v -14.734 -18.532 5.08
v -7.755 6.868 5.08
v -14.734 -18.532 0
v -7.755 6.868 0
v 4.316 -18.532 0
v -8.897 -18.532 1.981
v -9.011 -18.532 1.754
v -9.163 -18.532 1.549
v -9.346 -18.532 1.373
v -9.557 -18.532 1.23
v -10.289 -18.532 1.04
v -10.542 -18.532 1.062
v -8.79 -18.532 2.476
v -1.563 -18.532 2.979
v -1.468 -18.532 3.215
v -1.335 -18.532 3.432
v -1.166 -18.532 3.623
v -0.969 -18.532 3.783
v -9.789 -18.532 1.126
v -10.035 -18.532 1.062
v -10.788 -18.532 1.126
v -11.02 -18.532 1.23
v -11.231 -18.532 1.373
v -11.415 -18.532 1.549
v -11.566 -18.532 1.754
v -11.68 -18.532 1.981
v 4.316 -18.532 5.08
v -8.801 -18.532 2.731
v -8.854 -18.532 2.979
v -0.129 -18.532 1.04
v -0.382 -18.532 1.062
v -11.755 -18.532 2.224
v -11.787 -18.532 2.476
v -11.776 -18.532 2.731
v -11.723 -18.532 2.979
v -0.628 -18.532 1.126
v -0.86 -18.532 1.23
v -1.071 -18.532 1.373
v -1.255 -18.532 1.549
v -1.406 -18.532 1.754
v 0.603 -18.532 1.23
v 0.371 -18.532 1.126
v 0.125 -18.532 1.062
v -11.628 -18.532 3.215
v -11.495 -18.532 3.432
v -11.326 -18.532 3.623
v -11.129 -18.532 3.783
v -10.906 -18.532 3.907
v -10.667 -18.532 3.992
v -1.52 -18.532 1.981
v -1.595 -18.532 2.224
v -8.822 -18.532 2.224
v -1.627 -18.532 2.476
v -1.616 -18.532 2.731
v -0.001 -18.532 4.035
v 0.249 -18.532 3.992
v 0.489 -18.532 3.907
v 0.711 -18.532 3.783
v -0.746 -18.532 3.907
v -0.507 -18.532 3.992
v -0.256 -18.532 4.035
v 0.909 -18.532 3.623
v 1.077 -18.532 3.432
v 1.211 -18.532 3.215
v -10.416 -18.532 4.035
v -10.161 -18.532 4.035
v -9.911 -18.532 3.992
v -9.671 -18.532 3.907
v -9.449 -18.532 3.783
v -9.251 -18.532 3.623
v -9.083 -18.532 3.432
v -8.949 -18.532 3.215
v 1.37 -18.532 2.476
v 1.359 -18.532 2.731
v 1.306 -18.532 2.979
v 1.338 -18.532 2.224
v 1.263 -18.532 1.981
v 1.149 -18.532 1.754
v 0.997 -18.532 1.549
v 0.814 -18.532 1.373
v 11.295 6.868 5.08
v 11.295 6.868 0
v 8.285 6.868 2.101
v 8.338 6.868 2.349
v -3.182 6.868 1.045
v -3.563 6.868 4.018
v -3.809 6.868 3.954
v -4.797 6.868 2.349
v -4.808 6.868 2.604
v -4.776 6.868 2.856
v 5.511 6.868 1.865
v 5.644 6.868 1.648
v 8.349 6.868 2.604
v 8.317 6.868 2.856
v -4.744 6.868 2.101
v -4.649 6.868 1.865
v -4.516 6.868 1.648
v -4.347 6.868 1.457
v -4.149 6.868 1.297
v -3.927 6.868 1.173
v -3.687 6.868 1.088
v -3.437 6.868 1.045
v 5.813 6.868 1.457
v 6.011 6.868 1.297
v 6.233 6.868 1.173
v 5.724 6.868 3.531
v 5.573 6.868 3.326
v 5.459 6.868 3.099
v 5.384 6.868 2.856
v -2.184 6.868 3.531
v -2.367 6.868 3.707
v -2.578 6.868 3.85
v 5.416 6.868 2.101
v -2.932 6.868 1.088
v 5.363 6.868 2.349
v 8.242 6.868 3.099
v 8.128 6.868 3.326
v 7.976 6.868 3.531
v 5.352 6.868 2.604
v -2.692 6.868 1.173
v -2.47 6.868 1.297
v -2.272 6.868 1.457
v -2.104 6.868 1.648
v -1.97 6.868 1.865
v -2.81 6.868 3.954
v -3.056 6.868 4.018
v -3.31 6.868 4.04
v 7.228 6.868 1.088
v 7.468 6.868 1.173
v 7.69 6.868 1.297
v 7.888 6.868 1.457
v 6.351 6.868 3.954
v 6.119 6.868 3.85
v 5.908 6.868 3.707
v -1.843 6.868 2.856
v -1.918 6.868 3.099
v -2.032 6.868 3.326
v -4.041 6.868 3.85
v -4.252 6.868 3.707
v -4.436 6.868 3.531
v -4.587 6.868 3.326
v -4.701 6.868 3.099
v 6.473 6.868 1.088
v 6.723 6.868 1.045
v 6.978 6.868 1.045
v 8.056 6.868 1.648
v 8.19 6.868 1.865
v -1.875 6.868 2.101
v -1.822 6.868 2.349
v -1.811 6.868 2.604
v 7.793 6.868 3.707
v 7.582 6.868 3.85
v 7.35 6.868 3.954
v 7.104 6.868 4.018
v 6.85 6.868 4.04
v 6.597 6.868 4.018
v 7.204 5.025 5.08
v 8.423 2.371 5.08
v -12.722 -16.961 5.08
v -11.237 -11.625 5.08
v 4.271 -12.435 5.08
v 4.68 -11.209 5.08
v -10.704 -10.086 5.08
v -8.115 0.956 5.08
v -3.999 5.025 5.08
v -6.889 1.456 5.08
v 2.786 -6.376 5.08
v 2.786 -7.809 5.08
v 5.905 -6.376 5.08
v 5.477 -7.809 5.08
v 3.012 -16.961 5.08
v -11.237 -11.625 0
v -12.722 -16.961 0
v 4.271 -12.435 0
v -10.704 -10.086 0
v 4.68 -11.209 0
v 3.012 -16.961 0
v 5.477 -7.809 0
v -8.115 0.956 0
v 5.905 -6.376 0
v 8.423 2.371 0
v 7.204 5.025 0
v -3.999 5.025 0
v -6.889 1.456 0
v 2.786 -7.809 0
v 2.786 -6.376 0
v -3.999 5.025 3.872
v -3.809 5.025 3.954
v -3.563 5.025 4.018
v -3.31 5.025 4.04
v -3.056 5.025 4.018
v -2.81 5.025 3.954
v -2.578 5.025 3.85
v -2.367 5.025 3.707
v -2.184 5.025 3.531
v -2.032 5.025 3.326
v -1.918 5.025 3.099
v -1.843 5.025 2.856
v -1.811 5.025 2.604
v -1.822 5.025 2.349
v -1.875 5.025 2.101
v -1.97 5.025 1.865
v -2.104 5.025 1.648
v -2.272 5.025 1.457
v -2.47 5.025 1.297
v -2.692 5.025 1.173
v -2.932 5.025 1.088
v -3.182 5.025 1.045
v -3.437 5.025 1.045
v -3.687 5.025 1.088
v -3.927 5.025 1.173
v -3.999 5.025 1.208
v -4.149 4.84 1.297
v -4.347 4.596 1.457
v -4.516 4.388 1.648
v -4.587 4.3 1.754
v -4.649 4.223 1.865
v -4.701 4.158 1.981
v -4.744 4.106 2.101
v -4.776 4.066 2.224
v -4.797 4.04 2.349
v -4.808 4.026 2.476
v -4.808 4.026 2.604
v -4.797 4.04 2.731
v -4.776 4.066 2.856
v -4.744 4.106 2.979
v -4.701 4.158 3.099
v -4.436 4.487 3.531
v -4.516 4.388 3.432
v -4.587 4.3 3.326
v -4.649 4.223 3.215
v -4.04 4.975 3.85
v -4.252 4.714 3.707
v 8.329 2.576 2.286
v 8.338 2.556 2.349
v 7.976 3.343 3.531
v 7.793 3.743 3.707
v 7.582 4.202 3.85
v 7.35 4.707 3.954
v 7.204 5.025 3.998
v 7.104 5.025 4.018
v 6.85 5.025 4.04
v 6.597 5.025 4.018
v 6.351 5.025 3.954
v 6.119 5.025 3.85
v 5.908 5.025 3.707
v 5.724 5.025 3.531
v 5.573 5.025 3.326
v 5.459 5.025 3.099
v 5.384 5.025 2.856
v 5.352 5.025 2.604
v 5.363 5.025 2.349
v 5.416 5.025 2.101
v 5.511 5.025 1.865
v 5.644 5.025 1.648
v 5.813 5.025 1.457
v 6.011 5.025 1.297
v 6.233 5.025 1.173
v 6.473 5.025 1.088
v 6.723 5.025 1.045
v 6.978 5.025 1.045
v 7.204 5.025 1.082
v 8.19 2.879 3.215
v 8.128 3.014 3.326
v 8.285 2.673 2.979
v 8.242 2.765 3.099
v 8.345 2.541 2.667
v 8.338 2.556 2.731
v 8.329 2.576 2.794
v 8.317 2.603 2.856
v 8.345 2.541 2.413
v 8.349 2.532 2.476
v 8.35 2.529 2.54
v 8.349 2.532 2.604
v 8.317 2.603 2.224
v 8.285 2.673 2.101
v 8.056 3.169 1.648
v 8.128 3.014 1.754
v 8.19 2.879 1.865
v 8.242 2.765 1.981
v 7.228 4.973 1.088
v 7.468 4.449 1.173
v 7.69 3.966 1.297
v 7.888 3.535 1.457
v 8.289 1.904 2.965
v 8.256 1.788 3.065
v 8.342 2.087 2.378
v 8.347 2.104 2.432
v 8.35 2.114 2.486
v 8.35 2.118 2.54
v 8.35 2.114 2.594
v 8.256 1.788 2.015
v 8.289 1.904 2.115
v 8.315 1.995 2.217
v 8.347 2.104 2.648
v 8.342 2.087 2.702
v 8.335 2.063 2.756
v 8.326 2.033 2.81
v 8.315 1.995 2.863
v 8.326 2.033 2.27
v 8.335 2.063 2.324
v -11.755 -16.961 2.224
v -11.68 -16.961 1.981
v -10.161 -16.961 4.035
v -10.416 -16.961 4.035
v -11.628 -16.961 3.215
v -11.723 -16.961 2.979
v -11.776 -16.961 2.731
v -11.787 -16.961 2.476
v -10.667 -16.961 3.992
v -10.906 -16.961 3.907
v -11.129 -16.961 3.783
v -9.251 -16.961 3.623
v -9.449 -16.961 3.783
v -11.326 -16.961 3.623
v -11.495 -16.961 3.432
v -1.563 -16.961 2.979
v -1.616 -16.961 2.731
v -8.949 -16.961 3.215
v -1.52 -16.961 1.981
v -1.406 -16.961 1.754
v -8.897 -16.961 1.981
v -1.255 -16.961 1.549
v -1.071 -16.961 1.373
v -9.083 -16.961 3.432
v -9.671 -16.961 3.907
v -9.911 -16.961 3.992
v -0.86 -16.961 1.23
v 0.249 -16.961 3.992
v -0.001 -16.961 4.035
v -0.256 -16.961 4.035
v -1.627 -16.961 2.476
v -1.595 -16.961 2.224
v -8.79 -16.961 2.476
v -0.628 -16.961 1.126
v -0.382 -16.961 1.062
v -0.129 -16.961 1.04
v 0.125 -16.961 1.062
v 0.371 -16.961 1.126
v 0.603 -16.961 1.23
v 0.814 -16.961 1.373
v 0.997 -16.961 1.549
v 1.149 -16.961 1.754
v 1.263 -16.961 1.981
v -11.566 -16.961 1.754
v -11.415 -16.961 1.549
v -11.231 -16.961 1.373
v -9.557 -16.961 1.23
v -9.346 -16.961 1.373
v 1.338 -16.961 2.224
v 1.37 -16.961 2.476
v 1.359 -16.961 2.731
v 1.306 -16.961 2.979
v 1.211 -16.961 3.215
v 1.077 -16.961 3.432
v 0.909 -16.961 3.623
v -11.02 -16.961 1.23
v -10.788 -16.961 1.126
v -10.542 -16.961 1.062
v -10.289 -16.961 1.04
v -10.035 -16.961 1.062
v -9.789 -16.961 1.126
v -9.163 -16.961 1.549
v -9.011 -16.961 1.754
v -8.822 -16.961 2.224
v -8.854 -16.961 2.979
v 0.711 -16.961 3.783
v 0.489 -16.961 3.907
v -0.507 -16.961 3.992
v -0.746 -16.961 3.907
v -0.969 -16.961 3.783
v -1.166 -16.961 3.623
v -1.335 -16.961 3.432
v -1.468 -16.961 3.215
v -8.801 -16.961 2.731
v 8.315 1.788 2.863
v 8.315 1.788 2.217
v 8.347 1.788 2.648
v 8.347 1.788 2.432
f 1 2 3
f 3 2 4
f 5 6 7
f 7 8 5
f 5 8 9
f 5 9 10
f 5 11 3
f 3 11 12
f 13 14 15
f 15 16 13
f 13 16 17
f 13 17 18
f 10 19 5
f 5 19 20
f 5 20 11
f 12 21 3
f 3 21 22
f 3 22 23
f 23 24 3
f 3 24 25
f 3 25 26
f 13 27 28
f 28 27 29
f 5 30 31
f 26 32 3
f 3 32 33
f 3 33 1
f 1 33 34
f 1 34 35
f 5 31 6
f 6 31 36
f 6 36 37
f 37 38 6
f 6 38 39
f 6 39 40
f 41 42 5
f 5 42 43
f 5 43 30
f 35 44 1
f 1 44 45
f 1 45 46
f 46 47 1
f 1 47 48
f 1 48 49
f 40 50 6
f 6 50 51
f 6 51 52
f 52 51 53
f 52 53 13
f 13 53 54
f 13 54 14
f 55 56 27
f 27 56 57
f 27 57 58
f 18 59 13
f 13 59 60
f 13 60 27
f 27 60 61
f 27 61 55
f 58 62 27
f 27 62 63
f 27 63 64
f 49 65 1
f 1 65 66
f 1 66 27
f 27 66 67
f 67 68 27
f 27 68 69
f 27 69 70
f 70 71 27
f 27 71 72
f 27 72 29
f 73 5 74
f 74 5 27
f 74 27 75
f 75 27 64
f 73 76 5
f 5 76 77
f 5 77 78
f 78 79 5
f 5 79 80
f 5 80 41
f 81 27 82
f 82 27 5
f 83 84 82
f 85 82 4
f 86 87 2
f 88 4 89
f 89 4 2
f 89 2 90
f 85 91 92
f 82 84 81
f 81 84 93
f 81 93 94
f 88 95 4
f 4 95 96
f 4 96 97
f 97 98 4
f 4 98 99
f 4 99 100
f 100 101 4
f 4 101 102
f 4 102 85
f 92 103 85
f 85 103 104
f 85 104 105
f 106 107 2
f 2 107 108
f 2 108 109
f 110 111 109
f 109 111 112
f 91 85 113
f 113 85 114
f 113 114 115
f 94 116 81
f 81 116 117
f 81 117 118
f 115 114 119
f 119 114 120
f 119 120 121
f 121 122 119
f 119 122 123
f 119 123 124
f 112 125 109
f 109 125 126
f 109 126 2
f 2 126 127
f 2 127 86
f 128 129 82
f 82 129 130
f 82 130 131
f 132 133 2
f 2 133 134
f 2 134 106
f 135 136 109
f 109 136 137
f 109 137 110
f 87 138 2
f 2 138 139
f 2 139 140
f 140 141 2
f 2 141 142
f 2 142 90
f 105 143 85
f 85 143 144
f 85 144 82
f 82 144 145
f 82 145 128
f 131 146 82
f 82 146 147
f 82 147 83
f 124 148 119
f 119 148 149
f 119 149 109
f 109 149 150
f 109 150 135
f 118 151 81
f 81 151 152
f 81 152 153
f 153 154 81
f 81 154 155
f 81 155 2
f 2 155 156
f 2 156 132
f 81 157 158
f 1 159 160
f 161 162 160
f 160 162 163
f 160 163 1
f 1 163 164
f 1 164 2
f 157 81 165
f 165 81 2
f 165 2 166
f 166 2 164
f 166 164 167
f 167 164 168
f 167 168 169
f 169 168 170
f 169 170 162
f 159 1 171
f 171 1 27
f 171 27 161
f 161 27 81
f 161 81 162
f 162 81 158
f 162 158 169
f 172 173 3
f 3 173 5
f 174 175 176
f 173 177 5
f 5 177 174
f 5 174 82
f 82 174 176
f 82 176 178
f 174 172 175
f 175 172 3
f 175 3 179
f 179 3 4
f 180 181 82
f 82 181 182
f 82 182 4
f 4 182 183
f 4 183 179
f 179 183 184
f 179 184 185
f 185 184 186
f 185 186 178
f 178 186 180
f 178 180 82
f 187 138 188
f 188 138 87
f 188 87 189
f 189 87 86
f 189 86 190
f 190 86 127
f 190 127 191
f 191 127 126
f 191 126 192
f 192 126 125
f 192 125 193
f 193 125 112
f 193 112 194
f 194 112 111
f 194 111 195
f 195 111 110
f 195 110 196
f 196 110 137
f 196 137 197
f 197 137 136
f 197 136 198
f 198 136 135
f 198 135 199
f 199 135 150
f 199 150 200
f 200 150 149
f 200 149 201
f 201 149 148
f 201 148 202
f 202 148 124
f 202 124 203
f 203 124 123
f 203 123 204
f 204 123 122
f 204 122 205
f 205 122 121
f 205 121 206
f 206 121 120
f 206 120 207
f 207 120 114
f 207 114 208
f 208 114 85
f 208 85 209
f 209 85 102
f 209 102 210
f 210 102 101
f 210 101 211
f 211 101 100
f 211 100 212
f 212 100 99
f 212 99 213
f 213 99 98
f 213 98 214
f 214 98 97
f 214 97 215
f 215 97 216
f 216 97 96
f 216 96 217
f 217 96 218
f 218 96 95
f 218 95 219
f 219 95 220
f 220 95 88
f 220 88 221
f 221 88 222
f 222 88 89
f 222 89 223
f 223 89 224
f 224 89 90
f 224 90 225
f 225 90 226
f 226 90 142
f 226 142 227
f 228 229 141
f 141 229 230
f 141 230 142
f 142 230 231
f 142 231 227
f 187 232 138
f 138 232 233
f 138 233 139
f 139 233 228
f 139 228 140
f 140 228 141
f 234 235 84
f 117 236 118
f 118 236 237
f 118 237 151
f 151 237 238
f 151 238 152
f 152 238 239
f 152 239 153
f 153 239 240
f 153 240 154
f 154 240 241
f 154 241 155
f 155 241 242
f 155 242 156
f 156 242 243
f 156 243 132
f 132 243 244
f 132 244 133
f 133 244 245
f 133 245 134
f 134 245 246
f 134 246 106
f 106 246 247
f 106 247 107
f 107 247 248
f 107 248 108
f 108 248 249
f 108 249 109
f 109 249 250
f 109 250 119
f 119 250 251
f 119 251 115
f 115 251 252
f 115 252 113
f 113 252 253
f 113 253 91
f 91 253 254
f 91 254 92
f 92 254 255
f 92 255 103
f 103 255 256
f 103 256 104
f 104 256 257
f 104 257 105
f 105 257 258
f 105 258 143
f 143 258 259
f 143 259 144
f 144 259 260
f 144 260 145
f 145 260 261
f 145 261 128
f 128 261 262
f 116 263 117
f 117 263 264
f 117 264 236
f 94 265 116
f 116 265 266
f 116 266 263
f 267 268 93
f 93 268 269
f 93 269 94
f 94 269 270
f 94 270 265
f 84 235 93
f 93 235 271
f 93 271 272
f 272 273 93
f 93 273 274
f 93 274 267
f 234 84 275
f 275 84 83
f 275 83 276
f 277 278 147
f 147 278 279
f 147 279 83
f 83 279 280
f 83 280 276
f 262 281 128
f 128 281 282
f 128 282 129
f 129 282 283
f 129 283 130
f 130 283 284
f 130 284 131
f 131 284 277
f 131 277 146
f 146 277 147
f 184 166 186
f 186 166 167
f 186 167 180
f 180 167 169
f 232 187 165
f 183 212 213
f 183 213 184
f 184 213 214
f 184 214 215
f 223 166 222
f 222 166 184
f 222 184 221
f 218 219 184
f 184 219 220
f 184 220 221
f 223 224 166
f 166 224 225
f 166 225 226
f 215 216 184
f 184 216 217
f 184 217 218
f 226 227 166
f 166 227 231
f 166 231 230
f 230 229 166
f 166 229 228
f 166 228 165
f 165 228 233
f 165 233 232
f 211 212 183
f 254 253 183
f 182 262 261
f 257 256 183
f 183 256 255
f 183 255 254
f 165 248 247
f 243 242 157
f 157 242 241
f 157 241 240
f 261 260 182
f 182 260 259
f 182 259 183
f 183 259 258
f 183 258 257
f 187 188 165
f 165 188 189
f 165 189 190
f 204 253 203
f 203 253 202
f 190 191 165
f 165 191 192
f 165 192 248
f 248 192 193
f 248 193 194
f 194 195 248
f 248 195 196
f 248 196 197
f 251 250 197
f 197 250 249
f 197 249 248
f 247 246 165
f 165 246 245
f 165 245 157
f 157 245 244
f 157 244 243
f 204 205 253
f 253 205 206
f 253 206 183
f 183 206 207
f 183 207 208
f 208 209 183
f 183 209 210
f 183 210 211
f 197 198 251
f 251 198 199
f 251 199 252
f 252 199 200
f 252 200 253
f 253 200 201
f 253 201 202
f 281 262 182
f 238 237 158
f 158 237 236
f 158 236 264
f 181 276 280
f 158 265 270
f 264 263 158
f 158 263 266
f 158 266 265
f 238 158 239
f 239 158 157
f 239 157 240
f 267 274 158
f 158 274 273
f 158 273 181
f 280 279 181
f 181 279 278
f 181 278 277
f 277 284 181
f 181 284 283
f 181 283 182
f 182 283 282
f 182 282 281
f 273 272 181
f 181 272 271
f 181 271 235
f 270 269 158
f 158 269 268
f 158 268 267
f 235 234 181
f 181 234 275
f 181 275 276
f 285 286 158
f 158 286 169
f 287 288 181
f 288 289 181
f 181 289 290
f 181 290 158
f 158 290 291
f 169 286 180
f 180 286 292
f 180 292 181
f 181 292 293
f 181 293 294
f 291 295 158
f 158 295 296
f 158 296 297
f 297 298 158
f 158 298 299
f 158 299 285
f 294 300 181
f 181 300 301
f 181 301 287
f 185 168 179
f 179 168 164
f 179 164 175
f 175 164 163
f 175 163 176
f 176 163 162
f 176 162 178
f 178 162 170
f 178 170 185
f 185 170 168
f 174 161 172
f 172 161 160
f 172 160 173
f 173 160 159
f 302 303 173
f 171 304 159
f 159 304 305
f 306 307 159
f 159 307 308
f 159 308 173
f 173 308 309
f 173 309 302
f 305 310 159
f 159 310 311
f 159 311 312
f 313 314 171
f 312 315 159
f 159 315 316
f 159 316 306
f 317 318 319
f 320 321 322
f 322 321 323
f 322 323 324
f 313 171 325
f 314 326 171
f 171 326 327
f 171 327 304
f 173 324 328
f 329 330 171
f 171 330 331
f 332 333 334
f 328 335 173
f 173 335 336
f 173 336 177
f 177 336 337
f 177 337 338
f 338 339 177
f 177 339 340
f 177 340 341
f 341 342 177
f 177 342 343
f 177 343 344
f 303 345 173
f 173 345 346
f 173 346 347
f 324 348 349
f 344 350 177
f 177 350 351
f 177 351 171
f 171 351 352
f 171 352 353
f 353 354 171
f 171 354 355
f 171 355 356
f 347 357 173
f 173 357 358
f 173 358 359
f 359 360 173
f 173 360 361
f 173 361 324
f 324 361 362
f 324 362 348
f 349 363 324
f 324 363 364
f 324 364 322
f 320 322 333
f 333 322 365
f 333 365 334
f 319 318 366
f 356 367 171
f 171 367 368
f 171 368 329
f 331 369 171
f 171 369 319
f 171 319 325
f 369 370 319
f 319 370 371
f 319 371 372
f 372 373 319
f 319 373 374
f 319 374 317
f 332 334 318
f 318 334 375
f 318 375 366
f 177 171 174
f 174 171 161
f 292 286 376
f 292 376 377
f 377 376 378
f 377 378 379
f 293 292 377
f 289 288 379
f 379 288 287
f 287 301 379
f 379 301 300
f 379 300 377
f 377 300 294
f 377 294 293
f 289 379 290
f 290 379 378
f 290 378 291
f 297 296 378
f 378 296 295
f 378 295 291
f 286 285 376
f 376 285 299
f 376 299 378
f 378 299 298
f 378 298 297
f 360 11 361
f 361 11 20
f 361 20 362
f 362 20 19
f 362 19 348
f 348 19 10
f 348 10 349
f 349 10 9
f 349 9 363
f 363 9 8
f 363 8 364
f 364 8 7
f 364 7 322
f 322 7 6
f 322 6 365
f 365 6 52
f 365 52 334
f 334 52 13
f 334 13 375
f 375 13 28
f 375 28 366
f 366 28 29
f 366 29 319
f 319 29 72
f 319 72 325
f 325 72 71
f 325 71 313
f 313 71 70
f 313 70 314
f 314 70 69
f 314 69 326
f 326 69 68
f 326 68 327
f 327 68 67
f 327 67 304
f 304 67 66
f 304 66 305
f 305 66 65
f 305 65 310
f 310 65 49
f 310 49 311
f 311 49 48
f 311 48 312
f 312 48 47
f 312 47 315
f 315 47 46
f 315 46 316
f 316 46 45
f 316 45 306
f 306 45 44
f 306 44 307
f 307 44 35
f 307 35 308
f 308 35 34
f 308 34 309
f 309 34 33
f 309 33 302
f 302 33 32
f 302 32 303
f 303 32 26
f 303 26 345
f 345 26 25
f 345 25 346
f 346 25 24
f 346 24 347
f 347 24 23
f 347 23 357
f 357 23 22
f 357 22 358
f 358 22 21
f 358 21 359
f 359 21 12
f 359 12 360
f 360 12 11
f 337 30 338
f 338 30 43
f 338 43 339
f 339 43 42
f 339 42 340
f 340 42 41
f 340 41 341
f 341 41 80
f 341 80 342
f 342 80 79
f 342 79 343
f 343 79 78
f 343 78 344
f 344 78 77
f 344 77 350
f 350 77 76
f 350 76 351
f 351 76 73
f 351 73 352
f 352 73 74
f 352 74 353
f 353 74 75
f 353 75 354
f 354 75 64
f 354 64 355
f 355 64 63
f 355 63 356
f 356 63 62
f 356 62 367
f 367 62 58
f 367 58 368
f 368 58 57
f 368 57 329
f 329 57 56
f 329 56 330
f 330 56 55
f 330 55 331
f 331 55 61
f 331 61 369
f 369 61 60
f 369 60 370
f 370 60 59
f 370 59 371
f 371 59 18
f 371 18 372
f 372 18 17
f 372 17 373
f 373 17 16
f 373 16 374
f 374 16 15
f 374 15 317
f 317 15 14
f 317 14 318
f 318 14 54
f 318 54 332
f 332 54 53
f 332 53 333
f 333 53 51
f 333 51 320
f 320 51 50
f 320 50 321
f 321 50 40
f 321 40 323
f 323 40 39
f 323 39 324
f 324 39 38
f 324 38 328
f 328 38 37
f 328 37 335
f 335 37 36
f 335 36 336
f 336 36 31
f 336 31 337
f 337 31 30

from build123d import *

# Parameters (mm, degrees)
BOSS_EXTRUDE1_DEPTH = 5.08
SKETCH3_R           = 1.5
CUT_EXTRUDE1_DEPTH  = 5.08
CUT_EXTRUDE2_DEPTH  = 7.62
SKETCH5_R           = 1.5
CUT_EXTRUDE3_DEPTH  = 2.54


with BuildPart() as part:
    # Sketch2 → Boss-Extrude1 (new body)
    with BuildSketch(Plane.XY):
        Polygon((-7.754517134, 6.868286604), (11.295482866, 6.868286604), (4.316417445, -18.531713396), (-14.733582555, -18.531713396), align=None)
    extrude(amount=BOSS_EXTRUDE1_DEPTH)

    # Sketch3 → Cut-Extrude1 (cut)
    with BuildSketch(Plane(origin=(0, 6.868286604, 0), x_dir=(1, 0, 0), z_dir=(0, 1, 0))):
        with Locations(Location((6.850482866, -2.54, 0), (0, 0, 270))):
            Circle(SKETCH3_R)
        with Locations(Location((-3.309517134, -2.54, 0), (0, 0, 270))):
            Circle(SKETCH3_R)
    extrude(amount=-CUT_EXTRUDE1_DEPTH, mode=Mode.SUBTRACT)

    # Sketch4 → Cut-Extrude2 (cut)
    with BuildSketch(Plane(origin=(0, 0, 0), x_dir=(-1, 0, 0), z_dir=(0, 0, -1))):
        Polygon((-7.203649611, 5.025464096), (-8.423391825, 2.370731042), (-5.904798927, -6.376274022), (-2.786072566, -6.376274022), (6.889117517, 1.455631702), (3.999397468, 5.025464096), align=None)
        Polygon((8.115115025, 0.956019878), (10.704300182, -10.086093291), (-4.679537518, -11.209249583), (-5.476805356, -7.809136742), (-2.786072566, -7.809136742), align=None)
        Polygon((-4.271117048, -12.434510993), (-3.011820599, -16.961171201), (12.721835887, -16.961171201), (11.237306322, -11.624889252), align=None)
    extrude(amount=-CUT_EXTRUDE2_DEPTH, mode=Mode.SUBTRACT)

    # Sketch5 → Cut-Extrude3 (cut)
    with BuildSketch(Plane.XZ.offset(18.531713396)):
        with Locations(Location((-0.128582555, 2.54, 0), (0, 0, 270))):
            Circle(SKETCH5_R)
        with Locations(Location((-10.288582555, 2.54, 0), (0, 0, 270))):
            Circle(SKETCH5_R)
    extrude(amount=-CUT_EXTRUDE3_DEPTH, mode=Mode.SUBTRACT)


solid = part.part
